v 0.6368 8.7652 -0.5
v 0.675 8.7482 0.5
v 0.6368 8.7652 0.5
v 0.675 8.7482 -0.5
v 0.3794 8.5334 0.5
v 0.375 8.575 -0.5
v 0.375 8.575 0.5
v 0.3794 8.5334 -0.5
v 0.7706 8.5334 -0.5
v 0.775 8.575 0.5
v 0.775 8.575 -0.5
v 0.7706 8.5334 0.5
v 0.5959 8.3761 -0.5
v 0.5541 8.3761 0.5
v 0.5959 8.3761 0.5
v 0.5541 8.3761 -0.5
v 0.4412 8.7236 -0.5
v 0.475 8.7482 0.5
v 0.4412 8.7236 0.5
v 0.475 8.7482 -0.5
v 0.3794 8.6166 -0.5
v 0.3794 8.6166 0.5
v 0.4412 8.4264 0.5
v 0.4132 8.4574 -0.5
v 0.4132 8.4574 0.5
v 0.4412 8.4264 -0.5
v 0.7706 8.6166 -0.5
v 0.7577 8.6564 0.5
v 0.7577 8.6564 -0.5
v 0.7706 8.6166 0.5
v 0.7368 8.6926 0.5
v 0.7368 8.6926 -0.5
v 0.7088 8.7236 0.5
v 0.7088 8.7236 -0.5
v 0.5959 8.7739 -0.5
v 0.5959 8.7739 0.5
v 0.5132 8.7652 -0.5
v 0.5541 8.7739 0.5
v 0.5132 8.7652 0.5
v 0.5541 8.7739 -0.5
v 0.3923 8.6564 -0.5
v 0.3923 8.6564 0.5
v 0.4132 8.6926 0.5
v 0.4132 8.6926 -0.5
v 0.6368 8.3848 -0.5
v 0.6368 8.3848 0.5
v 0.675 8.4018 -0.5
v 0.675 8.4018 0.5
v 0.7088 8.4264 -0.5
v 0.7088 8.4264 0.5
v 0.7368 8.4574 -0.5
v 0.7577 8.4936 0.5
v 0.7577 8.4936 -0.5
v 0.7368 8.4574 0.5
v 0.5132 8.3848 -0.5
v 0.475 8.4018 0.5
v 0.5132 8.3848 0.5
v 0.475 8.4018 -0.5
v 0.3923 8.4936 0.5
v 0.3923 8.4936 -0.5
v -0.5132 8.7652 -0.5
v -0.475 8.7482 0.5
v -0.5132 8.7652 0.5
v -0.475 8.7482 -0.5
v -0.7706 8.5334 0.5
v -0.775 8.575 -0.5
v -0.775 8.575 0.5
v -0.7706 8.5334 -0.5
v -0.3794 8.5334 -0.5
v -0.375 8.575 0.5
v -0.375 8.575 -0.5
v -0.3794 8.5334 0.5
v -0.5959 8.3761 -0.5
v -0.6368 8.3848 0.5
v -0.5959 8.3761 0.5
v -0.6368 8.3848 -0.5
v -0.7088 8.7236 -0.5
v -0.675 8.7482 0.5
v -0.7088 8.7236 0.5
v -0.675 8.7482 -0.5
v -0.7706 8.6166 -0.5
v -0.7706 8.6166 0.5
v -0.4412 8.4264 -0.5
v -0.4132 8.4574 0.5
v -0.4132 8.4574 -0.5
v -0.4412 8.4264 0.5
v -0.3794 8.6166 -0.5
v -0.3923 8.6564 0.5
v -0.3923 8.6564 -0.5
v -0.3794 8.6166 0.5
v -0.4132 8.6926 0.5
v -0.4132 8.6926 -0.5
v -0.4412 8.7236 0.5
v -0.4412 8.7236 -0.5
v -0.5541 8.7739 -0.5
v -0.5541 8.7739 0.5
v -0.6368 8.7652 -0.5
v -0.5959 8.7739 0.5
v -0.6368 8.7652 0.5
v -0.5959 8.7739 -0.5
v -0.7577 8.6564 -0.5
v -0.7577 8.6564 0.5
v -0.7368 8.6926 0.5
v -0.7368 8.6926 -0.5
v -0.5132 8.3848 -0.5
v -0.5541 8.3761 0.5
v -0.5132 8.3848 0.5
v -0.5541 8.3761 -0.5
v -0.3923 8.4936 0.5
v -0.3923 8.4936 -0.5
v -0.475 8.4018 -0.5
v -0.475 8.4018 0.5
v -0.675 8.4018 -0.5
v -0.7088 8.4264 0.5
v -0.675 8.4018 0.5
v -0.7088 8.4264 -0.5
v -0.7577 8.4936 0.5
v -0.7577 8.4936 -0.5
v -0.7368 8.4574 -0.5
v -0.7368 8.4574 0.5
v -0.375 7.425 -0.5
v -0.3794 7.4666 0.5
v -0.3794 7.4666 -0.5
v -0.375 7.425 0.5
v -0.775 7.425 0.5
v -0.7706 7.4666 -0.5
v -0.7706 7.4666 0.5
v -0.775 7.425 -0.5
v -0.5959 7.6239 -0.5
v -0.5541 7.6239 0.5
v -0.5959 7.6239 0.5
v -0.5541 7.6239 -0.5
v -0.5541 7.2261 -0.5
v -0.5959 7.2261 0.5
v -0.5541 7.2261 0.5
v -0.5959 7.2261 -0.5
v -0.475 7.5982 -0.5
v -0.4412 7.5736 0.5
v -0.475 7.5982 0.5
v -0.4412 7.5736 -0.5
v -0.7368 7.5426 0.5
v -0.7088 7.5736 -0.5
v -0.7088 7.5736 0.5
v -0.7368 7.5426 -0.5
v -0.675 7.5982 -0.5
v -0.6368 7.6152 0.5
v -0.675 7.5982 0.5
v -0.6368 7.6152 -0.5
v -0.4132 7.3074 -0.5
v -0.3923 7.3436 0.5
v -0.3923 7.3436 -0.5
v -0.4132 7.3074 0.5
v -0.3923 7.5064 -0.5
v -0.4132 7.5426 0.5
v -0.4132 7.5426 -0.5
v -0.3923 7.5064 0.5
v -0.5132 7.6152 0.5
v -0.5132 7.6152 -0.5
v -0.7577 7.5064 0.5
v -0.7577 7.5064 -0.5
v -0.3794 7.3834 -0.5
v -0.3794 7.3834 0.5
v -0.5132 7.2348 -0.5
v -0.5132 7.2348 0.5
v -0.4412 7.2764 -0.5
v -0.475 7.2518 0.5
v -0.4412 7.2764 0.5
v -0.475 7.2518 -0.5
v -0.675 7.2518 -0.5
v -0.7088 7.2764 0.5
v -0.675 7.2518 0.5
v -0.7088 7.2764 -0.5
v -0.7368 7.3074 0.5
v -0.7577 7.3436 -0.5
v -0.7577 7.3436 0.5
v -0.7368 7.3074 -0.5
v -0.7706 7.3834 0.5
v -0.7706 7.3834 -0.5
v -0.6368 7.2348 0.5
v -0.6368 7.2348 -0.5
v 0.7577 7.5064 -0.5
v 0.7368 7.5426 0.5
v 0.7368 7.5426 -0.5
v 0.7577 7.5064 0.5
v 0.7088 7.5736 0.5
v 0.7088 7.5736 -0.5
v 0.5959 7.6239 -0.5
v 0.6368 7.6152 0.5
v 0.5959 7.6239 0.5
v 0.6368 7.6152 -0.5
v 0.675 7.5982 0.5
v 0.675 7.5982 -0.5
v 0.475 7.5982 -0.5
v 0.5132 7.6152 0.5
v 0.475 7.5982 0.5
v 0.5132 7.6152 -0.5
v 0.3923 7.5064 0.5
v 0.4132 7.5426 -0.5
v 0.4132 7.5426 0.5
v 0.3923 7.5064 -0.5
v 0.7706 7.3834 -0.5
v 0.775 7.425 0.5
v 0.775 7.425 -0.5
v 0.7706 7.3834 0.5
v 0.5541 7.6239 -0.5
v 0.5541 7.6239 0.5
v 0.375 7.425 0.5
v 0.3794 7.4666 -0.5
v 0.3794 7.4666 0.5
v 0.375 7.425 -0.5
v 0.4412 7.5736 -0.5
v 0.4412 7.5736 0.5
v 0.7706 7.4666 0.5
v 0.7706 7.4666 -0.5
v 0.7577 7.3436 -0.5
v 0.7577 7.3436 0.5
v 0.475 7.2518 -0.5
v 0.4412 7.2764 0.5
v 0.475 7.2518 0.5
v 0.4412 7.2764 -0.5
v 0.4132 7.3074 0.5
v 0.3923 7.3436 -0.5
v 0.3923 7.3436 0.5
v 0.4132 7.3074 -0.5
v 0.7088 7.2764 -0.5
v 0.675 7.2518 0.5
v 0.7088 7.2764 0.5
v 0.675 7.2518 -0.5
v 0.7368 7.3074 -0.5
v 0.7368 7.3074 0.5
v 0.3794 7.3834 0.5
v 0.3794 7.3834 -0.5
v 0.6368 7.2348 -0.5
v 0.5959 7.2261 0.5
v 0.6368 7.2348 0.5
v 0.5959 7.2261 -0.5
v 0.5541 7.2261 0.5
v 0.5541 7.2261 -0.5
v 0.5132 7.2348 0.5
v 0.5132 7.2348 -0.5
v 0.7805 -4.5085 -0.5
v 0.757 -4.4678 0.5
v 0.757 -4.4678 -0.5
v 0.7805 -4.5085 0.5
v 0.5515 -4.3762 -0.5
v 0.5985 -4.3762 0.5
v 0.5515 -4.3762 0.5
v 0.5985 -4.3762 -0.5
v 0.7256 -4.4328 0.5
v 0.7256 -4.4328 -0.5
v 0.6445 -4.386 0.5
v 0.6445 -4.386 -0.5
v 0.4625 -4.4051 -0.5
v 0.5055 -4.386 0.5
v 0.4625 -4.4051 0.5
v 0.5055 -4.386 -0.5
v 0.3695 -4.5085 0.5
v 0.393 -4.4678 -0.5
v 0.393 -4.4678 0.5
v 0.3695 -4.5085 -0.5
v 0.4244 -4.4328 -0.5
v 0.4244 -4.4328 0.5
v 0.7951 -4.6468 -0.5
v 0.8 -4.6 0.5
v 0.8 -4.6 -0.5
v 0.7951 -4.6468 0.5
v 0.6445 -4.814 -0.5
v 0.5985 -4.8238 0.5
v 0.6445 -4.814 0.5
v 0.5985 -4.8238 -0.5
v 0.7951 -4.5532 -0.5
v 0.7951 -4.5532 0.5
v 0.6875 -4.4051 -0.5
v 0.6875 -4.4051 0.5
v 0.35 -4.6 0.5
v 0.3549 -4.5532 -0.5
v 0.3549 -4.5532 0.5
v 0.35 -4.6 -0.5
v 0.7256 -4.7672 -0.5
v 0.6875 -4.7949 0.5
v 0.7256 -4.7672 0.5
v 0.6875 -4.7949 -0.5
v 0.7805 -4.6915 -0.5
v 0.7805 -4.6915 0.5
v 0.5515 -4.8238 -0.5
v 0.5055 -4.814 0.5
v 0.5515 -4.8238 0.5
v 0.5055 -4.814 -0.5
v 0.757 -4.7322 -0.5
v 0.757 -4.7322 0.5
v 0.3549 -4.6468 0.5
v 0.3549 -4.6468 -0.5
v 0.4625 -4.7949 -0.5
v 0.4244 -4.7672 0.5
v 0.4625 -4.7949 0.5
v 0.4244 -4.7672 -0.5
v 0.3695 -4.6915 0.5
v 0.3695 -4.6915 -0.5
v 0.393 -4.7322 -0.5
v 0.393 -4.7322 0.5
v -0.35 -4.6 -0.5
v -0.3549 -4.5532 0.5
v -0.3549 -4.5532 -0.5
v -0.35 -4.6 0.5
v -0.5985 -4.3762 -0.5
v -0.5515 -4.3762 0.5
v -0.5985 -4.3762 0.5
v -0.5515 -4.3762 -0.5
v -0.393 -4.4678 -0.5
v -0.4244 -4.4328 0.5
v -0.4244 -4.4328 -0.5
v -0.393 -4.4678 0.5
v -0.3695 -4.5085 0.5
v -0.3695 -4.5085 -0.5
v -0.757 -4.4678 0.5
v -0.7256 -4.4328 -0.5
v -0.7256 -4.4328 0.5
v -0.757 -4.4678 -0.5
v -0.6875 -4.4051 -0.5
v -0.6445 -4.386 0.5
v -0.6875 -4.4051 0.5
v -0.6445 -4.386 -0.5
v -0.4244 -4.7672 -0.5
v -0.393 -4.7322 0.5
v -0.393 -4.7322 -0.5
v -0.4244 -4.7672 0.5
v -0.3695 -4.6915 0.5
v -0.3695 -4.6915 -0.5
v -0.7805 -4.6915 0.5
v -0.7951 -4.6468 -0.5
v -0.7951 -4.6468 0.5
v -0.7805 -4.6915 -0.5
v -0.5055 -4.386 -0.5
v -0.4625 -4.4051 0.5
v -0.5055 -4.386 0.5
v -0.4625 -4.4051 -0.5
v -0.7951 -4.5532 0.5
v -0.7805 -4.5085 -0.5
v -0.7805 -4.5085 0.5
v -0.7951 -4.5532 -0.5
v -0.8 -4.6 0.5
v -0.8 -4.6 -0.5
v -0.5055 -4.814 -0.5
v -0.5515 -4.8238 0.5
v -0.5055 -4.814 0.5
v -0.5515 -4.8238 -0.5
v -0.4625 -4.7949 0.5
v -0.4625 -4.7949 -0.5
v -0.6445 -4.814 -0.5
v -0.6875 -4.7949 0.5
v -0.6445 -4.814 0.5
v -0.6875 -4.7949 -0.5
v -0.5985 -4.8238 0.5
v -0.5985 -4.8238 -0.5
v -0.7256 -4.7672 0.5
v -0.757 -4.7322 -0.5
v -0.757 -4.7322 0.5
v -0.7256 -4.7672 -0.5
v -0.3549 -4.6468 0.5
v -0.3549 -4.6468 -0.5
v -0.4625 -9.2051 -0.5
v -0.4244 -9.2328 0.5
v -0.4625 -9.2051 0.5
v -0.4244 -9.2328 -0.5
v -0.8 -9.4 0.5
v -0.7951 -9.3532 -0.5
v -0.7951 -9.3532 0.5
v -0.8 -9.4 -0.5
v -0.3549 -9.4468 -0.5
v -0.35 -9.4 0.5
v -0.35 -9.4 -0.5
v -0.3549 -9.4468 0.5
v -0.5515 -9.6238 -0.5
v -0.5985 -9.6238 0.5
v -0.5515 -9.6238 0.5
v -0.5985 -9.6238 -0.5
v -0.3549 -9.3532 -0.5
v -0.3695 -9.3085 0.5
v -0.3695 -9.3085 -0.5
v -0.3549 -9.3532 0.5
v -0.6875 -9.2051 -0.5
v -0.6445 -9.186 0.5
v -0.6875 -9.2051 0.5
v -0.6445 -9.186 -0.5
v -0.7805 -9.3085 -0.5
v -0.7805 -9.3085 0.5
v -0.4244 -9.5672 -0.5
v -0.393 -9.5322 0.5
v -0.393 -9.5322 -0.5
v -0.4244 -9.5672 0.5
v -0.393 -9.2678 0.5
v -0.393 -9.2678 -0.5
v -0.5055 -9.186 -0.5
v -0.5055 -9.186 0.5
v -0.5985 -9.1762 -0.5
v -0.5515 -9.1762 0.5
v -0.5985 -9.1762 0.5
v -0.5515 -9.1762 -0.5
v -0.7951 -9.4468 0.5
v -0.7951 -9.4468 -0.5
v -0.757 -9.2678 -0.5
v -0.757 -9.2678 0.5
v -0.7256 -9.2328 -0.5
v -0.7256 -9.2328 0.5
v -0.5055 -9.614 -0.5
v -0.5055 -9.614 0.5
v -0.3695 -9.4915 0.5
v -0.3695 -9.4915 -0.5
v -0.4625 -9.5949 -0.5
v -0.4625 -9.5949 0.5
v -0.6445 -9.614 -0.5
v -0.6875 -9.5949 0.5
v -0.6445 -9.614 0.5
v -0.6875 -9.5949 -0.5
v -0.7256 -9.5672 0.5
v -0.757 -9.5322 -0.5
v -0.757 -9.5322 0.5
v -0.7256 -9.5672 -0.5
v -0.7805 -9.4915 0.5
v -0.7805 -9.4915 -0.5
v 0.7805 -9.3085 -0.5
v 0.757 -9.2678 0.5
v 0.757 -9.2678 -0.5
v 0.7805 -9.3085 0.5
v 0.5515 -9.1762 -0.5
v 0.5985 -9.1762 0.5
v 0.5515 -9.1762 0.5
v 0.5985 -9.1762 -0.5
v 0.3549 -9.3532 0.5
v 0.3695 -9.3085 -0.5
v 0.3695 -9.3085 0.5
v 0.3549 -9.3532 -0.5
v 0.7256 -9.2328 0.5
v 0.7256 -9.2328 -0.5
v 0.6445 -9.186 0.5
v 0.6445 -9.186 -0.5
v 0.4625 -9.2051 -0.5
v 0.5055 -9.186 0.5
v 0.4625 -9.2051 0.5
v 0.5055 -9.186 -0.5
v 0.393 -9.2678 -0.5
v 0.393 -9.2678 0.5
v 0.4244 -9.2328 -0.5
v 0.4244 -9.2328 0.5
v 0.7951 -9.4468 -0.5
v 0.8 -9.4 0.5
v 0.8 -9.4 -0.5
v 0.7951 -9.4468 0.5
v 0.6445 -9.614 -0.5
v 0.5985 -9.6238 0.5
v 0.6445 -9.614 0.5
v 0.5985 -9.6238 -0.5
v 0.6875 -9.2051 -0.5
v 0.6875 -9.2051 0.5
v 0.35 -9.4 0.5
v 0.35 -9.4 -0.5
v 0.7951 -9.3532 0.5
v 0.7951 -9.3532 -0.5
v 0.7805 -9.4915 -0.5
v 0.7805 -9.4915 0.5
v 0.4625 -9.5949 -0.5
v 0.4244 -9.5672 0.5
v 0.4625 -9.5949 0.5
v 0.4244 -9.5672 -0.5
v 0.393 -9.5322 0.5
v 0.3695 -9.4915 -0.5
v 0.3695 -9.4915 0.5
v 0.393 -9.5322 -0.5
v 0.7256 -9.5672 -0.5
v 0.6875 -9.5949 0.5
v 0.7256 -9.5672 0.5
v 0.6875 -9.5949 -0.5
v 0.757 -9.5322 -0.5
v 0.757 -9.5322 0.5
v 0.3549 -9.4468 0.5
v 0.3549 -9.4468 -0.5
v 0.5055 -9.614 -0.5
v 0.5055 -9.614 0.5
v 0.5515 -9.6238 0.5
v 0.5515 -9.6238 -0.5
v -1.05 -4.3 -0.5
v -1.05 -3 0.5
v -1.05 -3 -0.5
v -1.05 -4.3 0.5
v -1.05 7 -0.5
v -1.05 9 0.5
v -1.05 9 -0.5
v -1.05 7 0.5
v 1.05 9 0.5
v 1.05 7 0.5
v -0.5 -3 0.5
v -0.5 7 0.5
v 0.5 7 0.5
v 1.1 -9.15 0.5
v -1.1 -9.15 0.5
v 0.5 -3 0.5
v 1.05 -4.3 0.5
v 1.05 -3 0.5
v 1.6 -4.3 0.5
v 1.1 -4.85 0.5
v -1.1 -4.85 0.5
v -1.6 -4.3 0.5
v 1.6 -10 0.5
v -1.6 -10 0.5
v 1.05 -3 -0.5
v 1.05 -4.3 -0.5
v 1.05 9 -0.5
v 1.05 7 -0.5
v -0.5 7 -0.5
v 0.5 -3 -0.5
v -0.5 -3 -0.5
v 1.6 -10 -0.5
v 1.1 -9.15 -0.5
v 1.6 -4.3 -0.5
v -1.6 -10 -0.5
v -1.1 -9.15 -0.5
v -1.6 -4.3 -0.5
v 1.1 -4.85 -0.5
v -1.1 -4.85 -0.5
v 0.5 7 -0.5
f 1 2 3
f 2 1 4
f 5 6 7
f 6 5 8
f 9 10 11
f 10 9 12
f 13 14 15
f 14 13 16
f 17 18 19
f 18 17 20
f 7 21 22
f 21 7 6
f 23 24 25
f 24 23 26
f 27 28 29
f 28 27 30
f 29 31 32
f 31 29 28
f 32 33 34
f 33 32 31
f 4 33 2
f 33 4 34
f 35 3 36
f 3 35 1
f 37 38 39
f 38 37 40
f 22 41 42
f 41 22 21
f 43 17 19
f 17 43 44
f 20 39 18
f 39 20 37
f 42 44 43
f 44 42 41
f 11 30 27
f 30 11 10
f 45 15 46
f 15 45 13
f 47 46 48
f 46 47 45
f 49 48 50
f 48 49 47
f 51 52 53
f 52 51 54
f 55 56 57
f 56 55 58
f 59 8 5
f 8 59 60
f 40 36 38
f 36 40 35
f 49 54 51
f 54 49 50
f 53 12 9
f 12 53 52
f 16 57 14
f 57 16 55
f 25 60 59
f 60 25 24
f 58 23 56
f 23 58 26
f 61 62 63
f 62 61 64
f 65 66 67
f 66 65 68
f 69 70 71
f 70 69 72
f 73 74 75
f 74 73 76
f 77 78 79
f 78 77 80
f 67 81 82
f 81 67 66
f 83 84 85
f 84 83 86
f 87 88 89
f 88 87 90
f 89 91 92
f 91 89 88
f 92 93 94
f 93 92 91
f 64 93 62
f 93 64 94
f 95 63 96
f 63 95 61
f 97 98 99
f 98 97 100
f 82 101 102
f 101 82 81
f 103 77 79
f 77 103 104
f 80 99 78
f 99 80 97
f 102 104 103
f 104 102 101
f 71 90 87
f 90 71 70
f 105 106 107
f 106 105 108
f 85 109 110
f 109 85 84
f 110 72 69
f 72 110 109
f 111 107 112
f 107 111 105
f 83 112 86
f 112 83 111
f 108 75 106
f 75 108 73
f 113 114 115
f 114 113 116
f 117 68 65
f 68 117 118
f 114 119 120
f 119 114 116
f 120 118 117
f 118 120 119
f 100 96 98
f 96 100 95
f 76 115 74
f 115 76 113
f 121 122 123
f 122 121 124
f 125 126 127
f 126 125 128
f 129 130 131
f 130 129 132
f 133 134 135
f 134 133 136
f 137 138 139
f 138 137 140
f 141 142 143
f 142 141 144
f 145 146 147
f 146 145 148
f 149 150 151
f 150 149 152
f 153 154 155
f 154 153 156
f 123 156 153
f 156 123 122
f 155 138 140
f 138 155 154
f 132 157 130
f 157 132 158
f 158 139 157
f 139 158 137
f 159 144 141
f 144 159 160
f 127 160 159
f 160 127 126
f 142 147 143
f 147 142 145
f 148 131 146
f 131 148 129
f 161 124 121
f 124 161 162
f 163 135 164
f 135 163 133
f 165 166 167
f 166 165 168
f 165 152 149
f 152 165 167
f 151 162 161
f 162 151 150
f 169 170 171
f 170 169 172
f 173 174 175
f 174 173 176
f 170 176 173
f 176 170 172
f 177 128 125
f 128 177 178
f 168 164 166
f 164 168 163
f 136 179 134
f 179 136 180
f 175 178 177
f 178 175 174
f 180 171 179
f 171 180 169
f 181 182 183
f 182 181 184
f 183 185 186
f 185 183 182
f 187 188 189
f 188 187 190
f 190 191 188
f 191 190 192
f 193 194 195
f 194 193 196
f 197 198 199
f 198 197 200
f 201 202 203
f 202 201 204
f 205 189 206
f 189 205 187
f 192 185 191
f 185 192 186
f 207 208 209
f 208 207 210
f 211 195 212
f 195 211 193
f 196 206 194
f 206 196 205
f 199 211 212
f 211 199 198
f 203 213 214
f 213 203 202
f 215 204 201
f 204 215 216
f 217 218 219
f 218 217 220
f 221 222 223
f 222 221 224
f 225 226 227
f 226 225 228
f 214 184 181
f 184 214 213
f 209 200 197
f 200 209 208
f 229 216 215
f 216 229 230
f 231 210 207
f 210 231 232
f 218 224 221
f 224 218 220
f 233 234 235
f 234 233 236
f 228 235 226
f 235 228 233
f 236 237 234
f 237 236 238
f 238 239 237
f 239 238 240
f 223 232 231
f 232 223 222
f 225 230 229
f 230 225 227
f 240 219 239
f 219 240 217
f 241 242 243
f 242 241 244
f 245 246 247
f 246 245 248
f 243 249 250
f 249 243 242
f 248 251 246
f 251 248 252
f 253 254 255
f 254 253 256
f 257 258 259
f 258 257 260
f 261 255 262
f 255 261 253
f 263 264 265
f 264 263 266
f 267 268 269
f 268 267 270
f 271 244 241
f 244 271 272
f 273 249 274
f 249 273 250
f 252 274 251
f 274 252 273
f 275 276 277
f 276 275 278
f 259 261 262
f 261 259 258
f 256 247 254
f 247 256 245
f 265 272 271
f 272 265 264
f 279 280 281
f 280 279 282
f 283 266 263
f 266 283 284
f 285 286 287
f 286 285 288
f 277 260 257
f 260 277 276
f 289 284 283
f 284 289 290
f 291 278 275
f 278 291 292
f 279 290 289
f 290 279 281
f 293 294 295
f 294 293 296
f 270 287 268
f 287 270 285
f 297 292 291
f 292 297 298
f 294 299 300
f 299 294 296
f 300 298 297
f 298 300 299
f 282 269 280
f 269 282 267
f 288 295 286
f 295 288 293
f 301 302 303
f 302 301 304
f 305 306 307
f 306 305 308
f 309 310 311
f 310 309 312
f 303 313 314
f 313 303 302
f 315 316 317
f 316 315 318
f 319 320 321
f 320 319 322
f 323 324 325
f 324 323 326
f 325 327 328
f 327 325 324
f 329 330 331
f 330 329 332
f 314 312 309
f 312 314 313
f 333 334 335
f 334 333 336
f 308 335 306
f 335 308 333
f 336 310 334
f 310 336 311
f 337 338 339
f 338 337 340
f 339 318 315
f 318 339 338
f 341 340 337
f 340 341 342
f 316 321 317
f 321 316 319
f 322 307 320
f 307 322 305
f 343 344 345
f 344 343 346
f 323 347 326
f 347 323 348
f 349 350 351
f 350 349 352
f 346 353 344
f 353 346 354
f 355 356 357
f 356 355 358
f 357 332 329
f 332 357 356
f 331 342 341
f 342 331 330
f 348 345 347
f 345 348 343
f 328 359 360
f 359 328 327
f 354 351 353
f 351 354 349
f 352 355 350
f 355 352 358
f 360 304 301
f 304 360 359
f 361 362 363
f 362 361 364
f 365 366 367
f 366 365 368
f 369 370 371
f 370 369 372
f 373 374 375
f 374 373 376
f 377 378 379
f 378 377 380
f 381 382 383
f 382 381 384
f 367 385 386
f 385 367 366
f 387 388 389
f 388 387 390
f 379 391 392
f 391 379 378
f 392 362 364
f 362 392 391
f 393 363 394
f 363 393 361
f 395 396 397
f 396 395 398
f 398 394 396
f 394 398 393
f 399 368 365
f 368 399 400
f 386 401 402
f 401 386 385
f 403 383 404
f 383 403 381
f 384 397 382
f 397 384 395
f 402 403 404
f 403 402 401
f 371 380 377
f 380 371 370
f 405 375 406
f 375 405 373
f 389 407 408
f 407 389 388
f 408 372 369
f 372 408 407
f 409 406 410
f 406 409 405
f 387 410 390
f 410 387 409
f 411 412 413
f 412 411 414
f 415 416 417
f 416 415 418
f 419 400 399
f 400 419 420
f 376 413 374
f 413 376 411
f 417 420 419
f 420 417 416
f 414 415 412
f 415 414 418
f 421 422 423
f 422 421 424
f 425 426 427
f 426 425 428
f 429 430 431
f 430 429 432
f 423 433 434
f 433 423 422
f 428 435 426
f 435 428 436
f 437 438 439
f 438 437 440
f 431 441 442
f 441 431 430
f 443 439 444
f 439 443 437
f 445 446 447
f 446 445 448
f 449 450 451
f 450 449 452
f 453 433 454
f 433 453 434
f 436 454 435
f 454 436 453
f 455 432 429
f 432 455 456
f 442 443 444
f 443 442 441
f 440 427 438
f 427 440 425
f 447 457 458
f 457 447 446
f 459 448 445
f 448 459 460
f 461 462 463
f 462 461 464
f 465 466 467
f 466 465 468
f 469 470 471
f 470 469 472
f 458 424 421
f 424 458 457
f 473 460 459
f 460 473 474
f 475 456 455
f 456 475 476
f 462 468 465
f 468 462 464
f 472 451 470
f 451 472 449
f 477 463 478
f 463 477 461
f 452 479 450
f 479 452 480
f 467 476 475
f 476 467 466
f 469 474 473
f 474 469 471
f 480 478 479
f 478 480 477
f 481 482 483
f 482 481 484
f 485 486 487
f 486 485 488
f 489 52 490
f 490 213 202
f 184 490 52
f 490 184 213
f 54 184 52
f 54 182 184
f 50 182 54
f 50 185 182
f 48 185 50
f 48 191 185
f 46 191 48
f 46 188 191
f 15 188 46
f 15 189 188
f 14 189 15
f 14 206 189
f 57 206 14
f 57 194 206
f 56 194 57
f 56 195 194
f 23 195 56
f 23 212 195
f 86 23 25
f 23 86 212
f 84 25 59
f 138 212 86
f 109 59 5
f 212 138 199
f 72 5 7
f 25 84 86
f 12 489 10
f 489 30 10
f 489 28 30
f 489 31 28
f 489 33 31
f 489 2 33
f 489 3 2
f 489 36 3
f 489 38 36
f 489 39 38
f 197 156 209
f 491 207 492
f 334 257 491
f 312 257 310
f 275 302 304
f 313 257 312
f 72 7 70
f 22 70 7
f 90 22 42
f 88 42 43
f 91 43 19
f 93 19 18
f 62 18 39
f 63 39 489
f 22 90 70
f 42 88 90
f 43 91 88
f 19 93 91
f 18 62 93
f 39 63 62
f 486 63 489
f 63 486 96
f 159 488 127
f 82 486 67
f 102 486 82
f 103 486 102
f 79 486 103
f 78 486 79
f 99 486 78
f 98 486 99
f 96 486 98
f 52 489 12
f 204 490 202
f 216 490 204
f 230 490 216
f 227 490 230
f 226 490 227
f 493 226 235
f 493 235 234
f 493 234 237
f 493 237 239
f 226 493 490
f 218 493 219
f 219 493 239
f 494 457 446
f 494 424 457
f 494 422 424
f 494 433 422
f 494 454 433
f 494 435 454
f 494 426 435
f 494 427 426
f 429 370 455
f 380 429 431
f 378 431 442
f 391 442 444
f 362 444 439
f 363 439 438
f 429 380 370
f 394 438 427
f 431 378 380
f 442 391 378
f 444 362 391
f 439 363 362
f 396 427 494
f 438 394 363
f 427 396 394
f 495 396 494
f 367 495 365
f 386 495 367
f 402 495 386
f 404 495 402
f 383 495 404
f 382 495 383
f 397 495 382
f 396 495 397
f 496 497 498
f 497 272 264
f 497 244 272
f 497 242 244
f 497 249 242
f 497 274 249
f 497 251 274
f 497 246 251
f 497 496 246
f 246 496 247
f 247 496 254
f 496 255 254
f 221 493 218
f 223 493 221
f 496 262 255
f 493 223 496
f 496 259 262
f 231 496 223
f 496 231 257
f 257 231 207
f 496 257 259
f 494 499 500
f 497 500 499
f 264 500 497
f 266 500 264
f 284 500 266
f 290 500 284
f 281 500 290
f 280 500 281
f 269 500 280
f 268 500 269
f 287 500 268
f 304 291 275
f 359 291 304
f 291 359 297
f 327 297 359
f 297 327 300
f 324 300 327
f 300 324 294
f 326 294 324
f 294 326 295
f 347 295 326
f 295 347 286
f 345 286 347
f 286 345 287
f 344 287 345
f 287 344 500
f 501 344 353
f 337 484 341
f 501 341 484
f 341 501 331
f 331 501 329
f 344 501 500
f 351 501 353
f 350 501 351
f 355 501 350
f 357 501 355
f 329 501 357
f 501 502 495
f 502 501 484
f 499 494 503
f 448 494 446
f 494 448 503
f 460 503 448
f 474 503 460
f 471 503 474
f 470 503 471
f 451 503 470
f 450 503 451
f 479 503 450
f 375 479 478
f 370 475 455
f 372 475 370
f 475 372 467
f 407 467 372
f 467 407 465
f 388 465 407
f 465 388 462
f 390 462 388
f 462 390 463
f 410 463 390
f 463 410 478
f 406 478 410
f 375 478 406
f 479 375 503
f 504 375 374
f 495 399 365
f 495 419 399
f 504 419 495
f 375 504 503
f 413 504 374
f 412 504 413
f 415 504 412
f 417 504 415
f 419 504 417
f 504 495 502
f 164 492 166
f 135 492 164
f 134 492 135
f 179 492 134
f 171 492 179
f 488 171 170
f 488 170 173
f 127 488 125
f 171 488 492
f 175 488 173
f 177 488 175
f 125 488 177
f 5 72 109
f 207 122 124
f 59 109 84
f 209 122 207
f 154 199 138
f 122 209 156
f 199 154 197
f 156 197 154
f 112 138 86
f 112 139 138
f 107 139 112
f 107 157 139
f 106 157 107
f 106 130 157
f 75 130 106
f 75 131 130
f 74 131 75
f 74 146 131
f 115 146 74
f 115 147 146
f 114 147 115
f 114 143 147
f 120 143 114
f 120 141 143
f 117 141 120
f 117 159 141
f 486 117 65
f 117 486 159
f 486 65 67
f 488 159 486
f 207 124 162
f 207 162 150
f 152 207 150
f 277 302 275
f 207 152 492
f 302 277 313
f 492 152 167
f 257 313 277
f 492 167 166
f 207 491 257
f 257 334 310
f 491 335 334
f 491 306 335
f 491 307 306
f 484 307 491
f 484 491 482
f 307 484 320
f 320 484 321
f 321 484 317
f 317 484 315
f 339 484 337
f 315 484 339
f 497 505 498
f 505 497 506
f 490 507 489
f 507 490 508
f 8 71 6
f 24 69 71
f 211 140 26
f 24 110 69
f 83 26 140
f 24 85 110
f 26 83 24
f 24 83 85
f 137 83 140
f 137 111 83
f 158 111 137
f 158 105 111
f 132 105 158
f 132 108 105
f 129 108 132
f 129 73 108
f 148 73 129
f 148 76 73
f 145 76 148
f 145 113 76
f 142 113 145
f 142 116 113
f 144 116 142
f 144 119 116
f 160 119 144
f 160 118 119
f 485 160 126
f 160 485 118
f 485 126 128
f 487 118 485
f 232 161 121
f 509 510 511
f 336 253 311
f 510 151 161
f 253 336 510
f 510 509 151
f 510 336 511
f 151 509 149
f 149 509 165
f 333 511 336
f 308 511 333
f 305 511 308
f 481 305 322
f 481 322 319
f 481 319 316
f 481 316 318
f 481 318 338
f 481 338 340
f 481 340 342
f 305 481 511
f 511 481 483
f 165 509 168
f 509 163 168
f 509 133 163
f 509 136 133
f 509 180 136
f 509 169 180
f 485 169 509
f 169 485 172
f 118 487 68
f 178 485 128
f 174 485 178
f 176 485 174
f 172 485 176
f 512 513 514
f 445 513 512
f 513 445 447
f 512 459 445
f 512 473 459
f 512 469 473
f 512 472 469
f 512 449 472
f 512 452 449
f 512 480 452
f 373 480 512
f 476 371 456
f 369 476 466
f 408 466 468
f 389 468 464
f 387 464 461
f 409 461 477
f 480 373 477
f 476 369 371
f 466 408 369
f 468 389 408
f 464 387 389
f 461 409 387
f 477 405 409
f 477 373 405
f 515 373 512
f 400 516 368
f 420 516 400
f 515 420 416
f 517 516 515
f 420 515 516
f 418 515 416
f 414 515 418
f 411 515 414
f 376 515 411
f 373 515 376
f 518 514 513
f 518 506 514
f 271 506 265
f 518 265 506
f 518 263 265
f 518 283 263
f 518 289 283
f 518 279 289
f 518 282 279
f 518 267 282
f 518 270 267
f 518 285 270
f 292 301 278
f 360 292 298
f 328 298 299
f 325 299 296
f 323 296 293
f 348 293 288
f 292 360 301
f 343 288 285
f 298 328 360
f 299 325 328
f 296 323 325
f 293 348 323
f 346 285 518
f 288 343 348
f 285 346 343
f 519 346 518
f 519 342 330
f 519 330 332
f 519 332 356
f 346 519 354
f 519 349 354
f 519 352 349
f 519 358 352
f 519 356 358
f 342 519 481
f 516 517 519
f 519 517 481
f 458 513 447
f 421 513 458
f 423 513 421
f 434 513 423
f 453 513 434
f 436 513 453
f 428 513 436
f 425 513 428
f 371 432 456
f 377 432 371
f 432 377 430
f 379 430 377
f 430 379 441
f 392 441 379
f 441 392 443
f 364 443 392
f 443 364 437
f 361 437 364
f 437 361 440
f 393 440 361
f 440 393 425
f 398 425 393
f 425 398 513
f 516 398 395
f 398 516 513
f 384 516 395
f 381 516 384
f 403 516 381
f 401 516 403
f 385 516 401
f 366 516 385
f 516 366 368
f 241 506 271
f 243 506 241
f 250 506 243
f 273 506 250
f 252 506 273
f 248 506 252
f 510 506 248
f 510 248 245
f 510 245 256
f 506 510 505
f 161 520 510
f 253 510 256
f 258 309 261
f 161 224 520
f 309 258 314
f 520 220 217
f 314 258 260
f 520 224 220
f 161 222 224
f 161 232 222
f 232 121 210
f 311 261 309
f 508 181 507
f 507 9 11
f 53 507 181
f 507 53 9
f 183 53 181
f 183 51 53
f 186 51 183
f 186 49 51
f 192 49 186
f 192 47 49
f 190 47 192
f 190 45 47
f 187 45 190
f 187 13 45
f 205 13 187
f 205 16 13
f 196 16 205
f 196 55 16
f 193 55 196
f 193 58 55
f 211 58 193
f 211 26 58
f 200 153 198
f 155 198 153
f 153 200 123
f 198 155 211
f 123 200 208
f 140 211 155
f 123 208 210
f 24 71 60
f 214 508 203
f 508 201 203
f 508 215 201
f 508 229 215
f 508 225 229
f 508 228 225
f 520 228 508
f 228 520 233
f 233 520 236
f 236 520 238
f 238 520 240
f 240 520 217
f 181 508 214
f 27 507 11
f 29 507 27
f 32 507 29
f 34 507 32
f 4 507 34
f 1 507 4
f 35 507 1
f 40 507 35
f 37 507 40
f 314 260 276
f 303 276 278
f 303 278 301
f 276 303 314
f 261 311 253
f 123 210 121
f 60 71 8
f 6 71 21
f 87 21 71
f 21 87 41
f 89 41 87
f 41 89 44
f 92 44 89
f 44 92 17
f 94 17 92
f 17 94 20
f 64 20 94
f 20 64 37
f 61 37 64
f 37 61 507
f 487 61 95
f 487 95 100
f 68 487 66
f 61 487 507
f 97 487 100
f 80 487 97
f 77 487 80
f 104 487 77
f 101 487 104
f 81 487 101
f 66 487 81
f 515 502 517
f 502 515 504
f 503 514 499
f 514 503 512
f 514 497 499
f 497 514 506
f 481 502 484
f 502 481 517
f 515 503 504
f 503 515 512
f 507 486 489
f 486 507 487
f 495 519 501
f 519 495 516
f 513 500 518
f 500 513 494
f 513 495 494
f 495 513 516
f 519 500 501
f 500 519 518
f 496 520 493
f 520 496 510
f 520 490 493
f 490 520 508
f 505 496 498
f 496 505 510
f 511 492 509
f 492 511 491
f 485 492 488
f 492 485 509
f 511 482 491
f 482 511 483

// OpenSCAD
$fn=30;
module backarm_holes() {
	translate([1.15/2, 1.15/2, 0]) cylinder(d=0.4, h=4, center=true);
	translate([-1.15/2, 1.15/2, 0]) cylinder(d=0.4, h=4, center=true);
	translate([-1.15/2, -1.15/2, 0]) cylinder(d=0.4, h=4, center=true);
	translate([1.15/2, -1.15/2, 0]) cylinder(d=0.4, h=4, center=true);
}

module backarm_servo_holes() {
	translate([1.15/2, 4.8/2, 0]) cylinder(d=0.45, h=4, center=true);
	translate([-1.15/2, 4.8/2, 0]) cylinder(d=0.45, h=4, center=true);
	translate([-1.15/2, -4.8/2, 0]) cylinder(d=0.45, h=4, center=true);
	translate([1.15/2, -4.8/2, 0]) cylinder(d=0.45, h=4, center=true);
}

module backarm() {
	difference() {
		union() {
			cube([2.1, 19, 1], center=true);
			translate([0,-16/2+1,0]) cube([3.2, 5.4, 1], center=true);
			translate([0,-16/2+0.7,0]) cube([3.2, 5.4, 1], center=true);
		}
		translate([0, 16/2,0]) backarm_holes();	
		translate([0, 16/2+1.5,0]) cube([2.2, 1, 2], center=true);	
		translate([0,-16/2+1,0]) cube([2.2, 4.3, 2], center=true);
		translate([1,2,0])cube([1, 10, 2], center=true);
		translate([-1,2,0])cube([1, 10, 2], center=true);
		translate([0, -16/2+1,0]) backarm_servo_holes();
	}
}
backarm();
